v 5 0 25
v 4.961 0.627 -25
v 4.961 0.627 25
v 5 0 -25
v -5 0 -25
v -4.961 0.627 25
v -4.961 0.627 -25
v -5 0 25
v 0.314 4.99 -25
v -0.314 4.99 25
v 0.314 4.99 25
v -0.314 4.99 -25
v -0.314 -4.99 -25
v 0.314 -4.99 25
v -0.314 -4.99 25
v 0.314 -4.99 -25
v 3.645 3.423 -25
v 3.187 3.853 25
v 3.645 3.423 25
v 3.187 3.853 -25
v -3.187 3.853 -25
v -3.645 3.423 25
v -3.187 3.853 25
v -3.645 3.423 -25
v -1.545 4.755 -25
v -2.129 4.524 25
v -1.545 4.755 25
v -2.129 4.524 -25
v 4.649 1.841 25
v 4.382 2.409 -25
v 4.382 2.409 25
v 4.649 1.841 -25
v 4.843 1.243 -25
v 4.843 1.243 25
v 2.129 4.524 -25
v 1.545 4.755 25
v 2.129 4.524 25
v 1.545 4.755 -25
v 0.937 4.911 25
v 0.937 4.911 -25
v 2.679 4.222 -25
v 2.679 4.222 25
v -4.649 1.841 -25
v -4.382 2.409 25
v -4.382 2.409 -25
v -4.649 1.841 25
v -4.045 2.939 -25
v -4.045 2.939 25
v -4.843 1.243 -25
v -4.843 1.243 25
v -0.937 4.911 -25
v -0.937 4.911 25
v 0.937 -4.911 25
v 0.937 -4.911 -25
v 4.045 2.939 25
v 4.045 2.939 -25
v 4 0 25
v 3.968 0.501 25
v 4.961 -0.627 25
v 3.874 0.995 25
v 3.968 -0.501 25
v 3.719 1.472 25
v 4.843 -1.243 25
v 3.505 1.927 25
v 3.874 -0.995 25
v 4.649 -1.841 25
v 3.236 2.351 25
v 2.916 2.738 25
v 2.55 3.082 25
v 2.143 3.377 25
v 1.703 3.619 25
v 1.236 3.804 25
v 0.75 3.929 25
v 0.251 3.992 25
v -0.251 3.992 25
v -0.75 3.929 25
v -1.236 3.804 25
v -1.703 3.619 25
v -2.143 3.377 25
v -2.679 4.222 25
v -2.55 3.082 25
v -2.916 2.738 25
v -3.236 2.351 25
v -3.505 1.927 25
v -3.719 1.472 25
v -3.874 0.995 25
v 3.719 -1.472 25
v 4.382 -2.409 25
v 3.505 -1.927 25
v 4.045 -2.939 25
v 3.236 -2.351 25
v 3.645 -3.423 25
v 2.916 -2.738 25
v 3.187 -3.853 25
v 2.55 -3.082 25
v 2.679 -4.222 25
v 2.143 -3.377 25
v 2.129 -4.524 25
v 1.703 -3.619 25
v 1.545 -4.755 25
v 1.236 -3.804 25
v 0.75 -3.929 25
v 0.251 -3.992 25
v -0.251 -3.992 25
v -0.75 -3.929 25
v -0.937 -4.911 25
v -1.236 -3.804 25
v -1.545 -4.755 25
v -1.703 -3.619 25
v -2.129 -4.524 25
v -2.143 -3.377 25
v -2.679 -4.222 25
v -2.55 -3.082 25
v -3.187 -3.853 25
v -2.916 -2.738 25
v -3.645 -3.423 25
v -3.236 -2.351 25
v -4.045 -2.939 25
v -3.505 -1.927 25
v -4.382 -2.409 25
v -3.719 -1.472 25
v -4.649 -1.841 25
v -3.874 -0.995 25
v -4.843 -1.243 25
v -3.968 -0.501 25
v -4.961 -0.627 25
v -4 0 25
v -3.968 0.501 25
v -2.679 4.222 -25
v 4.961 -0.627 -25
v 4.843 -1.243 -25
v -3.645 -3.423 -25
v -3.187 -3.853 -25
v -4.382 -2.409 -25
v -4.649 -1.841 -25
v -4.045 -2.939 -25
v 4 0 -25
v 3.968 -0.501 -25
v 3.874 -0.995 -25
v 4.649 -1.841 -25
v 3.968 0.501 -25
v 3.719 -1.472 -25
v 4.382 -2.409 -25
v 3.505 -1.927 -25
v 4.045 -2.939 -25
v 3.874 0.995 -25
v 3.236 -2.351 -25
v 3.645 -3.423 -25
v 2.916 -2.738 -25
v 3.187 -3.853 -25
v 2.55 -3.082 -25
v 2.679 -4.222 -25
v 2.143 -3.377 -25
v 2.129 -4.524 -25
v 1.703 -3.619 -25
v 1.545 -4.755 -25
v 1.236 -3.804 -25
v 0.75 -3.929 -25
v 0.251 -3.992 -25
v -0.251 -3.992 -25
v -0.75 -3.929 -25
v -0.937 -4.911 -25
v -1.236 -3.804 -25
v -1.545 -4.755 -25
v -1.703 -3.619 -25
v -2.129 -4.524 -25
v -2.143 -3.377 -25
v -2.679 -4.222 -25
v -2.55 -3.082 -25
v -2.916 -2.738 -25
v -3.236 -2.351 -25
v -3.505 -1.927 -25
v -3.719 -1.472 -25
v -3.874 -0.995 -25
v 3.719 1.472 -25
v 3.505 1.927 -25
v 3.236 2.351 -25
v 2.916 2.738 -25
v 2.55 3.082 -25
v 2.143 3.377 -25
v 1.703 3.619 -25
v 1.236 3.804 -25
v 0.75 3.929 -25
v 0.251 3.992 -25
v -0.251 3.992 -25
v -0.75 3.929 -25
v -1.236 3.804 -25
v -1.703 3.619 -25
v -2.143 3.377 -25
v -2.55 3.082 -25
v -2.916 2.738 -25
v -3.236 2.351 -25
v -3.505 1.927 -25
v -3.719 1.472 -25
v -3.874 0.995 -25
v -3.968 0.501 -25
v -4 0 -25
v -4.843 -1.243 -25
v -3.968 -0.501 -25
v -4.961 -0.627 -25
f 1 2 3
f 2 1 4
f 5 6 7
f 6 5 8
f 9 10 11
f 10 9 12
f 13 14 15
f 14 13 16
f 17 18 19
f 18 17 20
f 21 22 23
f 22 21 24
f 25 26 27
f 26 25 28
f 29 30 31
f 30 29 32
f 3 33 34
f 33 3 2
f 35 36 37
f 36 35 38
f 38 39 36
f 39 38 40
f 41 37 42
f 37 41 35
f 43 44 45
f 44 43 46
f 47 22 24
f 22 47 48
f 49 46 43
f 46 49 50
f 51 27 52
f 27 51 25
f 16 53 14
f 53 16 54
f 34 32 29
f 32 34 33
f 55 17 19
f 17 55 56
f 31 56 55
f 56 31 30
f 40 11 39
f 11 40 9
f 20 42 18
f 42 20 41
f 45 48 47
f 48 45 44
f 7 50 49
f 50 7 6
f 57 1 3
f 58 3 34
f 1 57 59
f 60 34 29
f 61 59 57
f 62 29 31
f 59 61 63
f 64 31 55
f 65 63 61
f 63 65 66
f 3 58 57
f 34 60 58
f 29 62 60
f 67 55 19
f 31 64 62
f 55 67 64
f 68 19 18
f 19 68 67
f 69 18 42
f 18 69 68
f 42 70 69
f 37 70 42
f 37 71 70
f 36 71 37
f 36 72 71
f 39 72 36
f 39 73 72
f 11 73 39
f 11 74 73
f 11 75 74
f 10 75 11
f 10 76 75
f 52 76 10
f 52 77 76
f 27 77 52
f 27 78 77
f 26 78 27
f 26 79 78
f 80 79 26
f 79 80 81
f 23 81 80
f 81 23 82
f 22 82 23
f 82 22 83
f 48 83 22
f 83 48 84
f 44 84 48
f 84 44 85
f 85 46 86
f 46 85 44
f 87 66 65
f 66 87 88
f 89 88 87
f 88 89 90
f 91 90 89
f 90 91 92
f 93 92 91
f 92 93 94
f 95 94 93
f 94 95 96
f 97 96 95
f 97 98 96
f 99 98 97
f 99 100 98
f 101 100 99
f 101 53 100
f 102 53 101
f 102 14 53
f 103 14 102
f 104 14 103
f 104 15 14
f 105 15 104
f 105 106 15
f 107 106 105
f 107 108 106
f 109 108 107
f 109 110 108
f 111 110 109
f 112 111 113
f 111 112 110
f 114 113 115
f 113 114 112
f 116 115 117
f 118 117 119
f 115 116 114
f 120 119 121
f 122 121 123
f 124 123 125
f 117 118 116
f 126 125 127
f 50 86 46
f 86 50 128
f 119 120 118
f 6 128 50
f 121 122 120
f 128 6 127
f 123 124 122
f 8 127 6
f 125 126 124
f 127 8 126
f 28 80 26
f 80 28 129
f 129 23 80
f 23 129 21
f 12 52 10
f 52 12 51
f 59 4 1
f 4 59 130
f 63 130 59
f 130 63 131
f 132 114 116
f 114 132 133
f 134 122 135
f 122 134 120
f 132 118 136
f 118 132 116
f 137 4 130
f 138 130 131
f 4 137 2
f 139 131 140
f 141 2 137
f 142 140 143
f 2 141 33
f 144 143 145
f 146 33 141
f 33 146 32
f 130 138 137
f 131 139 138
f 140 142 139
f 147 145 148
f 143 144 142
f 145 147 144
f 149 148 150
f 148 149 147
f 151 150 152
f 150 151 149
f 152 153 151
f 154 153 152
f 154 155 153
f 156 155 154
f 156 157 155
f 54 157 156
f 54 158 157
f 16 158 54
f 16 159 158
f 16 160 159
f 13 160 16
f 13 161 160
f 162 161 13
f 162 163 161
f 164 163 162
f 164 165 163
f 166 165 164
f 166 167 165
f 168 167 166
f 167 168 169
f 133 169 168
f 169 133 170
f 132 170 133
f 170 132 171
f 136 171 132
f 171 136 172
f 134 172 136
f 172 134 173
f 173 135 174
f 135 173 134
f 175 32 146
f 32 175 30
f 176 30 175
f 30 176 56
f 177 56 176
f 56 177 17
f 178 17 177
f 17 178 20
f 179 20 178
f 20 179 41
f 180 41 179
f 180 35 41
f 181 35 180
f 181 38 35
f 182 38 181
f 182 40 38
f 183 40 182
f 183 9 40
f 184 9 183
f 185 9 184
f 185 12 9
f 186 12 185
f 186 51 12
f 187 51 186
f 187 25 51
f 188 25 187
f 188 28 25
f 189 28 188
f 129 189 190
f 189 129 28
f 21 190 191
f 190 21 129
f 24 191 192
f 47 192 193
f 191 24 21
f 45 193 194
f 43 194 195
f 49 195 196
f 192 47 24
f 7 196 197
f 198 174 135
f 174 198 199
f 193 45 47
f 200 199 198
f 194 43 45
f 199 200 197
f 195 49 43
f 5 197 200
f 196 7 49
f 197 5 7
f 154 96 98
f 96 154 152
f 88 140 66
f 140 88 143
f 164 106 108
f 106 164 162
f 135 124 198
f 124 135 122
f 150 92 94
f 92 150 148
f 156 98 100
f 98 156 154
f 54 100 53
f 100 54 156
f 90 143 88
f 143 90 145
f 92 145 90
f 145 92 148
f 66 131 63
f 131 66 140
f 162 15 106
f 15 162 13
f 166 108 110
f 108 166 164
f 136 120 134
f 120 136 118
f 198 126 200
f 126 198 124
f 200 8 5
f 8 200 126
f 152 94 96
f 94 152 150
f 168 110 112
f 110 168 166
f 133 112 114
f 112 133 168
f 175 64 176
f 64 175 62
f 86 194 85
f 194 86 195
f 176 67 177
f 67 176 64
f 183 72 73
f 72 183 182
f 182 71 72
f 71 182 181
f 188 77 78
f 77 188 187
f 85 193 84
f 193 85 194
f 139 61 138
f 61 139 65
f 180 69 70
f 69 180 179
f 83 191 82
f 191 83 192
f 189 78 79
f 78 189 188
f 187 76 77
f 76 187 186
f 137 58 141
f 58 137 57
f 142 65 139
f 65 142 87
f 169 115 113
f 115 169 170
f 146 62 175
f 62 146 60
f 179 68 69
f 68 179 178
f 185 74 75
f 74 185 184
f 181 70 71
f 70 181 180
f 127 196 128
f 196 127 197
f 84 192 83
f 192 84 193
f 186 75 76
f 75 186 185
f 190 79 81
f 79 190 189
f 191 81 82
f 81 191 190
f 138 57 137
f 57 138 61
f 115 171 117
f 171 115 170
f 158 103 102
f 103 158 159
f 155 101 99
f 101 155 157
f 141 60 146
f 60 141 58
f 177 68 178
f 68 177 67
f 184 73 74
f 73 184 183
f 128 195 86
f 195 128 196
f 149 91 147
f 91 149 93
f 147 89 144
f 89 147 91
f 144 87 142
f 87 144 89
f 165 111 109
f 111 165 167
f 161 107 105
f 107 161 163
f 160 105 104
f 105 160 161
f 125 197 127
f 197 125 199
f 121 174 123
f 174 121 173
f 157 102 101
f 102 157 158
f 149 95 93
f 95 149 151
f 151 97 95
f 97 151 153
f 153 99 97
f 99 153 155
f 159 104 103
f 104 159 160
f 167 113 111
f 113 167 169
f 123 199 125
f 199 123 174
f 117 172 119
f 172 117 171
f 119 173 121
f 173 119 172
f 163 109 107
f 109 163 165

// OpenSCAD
$fn = 50;


difference() {
	union() {
		translate(v = [0, 0, -25.0000000000]) {
			cylinder(h = 50, r = 5.0000000000);
		}
	}
	union() {
		translate(v = [0, 0, -100.0000000000]) {
			cylinder(h = 200, r = 4);
		}
	}
}
